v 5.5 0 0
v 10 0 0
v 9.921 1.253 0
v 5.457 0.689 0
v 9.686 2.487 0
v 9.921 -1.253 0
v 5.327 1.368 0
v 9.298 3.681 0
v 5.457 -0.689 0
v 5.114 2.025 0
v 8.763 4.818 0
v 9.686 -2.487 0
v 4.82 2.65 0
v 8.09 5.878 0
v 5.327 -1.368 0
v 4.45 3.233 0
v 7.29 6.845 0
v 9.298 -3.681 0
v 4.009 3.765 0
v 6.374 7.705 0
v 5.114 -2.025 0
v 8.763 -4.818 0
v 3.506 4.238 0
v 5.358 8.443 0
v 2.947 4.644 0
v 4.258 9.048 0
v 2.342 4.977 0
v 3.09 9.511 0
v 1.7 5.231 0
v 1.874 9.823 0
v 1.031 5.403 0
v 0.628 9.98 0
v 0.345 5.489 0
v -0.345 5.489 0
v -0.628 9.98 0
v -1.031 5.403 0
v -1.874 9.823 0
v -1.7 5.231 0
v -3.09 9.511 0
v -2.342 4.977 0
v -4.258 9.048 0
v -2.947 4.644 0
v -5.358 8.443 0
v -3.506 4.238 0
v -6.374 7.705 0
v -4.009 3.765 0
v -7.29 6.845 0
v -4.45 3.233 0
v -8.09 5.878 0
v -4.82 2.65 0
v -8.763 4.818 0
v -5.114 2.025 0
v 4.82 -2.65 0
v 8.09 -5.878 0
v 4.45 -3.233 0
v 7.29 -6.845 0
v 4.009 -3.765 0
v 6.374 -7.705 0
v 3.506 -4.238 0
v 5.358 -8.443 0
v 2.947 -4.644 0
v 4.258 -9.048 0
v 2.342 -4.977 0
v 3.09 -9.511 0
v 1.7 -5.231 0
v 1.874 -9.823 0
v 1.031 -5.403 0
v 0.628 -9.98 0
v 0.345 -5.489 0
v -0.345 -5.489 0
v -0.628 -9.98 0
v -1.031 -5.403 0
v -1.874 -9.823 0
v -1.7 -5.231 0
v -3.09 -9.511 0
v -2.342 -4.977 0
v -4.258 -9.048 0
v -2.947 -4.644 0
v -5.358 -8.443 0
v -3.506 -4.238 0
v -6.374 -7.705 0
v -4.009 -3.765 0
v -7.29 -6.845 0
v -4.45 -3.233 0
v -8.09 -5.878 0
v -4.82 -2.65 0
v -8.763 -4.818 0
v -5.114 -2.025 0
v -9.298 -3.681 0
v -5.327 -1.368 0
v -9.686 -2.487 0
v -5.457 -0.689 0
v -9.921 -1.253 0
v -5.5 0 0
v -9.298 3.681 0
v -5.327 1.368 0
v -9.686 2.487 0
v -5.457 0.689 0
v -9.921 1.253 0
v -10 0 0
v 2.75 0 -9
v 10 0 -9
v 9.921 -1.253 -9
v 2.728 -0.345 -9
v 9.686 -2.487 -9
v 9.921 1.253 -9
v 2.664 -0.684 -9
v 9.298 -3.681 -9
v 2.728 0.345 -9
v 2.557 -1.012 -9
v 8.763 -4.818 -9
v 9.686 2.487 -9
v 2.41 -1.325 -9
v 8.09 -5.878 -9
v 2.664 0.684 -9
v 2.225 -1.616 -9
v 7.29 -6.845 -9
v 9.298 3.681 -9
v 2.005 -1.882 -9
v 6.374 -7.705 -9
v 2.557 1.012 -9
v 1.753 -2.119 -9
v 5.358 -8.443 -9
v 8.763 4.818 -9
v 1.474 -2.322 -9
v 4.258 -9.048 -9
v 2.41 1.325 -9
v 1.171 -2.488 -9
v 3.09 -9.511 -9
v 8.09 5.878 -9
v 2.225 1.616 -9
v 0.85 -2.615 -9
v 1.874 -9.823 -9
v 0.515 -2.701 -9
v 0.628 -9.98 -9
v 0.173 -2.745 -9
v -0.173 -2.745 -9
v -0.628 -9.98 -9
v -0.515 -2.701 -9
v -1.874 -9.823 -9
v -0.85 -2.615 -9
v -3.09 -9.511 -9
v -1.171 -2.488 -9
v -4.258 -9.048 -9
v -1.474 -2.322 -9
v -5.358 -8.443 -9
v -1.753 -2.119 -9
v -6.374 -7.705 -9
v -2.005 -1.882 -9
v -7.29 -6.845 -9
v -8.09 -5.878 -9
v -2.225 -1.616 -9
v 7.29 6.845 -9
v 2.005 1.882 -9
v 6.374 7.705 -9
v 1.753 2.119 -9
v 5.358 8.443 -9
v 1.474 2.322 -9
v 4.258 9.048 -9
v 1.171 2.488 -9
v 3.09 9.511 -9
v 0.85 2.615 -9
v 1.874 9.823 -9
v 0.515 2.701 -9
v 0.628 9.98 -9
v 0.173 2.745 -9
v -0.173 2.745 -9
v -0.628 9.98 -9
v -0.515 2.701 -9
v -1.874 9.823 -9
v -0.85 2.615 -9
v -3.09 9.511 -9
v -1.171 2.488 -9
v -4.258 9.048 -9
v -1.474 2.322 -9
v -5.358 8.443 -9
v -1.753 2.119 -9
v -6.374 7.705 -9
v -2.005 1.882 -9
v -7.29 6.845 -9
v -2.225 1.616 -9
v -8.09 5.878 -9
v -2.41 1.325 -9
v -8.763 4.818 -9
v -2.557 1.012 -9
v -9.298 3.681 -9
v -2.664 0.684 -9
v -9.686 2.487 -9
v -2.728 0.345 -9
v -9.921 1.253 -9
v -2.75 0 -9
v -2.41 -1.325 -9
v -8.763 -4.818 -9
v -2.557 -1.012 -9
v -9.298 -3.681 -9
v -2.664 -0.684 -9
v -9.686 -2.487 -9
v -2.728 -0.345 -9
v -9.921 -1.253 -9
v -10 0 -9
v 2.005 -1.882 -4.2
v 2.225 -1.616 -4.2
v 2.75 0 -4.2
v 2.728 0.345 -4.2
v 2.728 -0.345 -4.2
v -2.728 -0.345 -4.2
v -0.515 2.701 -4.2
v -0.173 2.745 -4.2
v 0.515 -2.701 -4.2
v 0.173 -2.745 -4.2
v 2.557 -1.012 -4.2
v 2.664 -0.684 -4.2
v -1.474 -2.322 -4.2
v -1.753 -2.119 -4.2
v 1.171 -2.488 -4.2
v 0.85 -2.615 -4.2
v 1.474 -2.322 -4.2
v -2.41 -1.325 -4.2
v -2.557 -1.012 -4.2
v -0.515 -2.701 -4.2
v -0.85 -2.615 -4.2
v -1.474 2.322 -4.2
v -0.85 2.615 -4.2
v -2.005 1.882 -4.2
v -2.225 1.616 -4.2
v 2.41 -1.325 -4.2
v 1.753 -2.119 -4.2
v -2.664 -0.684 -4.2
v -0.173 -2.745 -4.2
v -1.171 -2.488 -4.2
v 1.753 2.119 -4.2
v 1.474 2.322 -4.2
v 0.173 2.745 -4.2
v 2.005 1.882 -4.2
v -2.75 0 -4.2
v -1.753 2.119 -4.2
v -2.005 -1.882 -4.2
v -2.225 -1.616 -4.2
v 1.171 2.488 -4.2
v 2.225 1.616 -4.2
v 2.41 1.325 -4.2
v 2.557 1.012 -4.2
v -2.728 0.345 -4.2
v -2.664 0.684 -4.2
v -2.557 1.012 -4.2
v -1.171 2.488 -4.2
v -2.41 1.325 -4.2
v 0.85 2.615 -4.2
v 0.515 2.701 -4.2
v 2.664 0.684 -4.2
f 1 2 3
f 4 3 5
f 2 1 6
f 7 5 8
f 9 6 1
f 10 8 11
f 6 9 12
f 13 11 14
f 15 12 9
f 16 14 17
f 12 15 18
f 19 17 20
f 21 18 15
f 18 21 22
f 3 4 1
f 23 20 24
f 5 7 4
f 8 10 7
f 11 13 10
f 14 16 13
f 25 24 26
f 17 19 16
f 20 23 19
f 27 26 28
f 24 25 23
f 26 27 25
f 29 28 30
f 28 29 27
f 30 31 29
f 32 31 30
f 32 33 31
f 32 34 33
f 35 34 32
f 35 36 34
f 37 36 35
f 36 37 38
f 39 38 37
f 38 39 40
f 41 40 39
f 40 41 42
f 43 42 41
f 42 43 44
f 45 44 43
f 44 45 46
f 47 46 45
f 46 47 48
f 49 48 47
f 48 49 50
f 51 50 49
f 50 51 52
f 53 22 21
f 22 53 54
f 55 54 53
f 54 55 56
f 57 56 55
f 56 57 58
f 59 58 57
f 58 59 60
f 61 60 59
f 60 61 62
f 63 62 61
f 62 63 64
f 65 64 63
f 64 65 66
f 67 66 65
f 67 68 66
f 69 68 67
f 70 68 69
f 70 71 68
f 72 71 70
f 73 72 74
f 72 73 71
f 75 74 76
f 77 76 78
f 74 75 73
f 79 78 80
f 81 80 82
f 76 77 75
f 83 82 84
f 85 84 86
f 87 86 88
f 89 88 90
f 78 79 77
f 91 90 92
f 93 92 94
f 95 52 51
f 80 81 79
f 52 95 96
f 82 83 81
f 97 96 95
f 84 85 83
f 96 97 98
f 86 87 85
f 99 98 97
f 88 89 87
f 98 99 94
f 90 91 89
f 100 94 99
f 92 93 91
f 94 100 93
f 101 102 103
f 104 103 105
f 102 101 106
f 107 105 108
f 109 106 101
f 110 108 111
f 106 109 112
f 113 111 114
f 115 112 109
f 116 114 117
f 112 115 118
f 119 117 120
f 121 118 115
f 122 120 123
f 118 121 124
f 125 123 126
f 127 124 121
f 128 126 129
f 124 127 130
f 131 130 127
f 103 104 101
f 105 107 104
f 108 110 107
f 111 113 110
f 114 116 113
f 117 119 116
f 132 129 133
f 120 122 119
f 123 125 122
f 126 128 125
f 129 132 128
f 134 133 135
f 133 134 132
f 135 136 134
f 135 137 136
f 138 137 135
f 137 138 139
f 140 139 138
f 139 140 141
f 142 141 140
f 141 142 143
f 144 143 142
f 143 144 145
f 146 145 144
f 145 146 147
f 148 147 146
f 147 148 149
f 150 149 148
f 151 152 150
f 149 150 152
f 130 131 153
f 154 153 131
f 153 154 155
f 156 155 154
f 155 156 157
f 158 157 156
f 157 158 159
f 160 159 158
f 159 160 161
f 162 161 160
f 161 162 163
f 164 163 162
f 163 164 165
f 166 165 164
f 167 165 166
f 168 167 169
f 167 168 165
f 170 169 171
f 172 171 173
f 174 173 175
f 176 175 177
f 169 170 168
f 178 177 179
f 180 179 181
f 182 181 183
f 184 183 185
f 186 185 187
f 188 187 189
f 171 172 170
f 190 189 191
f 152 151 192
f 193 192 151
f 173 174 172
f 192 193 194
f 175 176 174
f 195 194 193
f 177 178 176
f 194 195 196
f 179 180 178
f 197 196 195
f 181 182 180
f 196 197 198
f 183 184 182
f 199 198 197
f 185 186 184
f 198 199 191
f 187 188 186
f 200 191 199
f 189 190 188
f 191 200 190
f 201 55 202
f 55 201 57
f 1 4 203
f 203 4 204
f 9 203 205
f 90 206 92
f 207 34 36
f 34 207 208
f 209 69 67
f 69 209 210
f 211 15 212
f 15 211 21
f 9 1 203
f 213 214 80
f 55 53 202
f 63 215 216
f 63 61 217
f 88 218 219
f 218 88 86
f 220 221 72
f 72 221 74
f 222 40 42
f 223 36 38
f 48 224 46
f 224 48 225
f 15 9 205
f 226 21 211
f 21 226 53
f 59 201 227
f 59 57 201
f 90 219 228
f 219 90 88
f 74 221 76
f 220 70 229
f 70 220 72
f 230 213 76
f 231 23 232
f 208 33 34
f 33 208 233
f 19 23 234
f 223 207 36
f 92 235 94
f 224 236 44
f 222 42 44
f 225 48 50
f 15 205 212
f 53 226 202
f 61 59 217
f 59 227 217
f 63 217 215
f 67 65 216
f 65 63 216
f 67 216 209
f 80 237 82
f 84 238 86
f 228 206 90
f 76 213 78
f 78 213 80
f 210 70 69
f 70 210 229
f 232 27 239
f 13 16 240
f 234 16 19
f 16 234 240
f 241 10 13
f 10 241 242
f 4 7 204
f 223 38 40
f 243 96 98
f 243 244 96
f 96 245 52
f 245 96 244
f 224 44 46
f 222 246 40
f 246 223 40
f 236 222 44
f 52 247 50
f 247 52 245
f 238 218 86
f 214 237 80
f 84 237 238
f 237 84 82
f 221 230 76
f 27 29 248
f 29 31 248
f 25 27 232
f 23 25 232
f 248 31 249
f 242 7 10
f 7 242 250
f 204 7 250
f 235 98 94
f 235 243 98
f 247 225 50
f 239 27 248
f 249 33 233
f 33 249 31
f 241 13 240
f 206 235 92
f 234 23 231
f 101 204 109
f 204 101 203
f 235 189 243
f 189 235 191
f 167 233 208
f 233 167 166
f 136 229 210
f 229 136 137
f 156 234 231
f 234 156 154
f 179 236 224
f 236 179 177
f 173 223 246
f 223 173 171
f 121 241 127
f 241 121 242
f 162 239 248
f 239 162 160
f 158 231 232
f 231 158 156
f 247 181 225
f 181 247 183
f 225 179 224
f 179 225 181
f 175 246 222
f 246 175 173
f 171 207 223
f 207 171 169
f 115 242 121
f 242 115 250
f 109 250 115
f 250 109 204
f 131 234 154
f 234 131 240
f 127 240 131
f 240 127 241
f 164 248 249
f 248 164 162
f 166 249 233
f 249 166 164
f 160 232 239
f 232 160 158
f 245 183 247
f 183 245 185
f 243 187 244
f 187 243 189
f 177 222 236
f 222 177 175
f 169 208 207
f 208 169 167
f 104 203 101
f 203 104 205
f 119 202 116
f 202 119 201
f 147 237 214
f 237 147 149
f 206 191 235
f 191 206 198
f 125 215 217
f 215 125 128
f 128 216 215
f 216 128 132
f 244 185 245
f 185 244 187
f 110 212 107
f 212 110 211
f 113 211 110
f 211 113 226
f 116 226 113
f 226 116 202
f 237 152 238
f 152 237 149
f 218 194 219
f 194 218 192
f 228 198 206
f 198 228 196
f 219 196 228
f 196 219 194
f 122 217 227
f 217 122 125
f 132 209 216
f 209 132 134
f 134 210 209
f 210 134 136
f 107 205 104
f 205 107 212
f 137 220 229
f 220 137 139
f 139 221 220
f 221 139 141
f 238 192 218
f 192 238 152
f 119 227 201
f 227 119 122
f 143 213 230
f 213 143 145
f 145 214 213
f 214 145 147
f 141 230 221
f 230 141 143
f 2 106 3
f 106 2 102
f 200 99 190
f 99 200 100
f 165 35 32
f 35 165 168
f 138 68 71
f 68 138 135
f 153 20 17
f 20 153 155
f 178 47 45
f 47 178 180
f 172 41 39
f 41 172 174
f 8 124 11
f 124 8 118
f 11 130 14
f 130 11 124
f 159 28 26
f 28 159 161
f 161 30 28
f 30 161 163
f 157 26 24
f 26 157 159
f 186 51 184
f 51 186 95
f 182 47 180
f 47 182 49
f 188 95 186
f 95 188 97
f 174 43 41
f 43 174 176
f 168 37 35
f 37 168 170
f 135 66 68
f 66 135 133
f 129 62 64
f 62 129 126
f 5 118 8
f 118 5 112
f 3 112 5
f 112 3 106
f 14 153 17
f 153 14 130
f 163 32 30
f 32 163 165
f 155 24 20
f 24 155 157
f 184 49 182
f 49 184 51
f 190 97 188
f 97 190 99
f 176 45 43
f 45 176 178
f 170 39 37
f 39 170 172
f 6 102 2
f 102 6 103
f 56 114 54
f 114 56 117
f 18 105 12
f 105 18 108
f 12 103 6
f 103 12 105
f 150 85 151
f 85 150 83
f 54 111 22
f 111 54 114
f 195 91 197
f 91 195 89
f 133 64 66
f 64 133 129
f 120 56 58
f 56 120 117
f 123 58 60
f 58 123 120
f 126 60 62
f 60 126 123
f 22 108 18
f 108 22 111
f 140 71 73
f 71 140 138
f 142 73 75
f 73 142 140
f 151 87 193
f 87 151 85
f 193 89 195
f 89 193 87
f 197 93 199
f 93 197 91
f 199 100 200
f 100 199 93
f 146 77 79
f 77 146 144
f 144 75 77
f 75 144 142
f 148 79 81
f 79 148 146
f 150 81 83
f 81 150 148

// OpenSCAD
$fn = 50;


difference() {
	union() {
		translate(v = [0, 0, -9.0000000000]) {
			cylinder(h = 9, r = 10.0000000000);
		}
		cylinder(h = 0, r = 20.0000000000);
	}
	union() {
		translate(v = [0, 0, 0]) {
			rotate(a = [0, 0, 0]) {
				difference() {
					union() {
						#translate(v = [0, 0, -9.0000000000]) {
							cylinder(h = 9, r = 2.2500000000);
						}
						#translate(v = [0, 0, -4.2000000000]) {
							cylinder(h = 4.2000000000, r1 = 2.7500000000, r2 = 5.5000000000);
						}
						#translate(v = [0, 0, -9.0000000000]) {
							cylinder(h = 9, r = 2.7500000000);
						}
						#translate(v = [0, 0, -9.0000000000]) {
							cylinder(h = 9, r = 2.2500000000);
						}
					}
					union();
				}
			}
		}
	}
}
